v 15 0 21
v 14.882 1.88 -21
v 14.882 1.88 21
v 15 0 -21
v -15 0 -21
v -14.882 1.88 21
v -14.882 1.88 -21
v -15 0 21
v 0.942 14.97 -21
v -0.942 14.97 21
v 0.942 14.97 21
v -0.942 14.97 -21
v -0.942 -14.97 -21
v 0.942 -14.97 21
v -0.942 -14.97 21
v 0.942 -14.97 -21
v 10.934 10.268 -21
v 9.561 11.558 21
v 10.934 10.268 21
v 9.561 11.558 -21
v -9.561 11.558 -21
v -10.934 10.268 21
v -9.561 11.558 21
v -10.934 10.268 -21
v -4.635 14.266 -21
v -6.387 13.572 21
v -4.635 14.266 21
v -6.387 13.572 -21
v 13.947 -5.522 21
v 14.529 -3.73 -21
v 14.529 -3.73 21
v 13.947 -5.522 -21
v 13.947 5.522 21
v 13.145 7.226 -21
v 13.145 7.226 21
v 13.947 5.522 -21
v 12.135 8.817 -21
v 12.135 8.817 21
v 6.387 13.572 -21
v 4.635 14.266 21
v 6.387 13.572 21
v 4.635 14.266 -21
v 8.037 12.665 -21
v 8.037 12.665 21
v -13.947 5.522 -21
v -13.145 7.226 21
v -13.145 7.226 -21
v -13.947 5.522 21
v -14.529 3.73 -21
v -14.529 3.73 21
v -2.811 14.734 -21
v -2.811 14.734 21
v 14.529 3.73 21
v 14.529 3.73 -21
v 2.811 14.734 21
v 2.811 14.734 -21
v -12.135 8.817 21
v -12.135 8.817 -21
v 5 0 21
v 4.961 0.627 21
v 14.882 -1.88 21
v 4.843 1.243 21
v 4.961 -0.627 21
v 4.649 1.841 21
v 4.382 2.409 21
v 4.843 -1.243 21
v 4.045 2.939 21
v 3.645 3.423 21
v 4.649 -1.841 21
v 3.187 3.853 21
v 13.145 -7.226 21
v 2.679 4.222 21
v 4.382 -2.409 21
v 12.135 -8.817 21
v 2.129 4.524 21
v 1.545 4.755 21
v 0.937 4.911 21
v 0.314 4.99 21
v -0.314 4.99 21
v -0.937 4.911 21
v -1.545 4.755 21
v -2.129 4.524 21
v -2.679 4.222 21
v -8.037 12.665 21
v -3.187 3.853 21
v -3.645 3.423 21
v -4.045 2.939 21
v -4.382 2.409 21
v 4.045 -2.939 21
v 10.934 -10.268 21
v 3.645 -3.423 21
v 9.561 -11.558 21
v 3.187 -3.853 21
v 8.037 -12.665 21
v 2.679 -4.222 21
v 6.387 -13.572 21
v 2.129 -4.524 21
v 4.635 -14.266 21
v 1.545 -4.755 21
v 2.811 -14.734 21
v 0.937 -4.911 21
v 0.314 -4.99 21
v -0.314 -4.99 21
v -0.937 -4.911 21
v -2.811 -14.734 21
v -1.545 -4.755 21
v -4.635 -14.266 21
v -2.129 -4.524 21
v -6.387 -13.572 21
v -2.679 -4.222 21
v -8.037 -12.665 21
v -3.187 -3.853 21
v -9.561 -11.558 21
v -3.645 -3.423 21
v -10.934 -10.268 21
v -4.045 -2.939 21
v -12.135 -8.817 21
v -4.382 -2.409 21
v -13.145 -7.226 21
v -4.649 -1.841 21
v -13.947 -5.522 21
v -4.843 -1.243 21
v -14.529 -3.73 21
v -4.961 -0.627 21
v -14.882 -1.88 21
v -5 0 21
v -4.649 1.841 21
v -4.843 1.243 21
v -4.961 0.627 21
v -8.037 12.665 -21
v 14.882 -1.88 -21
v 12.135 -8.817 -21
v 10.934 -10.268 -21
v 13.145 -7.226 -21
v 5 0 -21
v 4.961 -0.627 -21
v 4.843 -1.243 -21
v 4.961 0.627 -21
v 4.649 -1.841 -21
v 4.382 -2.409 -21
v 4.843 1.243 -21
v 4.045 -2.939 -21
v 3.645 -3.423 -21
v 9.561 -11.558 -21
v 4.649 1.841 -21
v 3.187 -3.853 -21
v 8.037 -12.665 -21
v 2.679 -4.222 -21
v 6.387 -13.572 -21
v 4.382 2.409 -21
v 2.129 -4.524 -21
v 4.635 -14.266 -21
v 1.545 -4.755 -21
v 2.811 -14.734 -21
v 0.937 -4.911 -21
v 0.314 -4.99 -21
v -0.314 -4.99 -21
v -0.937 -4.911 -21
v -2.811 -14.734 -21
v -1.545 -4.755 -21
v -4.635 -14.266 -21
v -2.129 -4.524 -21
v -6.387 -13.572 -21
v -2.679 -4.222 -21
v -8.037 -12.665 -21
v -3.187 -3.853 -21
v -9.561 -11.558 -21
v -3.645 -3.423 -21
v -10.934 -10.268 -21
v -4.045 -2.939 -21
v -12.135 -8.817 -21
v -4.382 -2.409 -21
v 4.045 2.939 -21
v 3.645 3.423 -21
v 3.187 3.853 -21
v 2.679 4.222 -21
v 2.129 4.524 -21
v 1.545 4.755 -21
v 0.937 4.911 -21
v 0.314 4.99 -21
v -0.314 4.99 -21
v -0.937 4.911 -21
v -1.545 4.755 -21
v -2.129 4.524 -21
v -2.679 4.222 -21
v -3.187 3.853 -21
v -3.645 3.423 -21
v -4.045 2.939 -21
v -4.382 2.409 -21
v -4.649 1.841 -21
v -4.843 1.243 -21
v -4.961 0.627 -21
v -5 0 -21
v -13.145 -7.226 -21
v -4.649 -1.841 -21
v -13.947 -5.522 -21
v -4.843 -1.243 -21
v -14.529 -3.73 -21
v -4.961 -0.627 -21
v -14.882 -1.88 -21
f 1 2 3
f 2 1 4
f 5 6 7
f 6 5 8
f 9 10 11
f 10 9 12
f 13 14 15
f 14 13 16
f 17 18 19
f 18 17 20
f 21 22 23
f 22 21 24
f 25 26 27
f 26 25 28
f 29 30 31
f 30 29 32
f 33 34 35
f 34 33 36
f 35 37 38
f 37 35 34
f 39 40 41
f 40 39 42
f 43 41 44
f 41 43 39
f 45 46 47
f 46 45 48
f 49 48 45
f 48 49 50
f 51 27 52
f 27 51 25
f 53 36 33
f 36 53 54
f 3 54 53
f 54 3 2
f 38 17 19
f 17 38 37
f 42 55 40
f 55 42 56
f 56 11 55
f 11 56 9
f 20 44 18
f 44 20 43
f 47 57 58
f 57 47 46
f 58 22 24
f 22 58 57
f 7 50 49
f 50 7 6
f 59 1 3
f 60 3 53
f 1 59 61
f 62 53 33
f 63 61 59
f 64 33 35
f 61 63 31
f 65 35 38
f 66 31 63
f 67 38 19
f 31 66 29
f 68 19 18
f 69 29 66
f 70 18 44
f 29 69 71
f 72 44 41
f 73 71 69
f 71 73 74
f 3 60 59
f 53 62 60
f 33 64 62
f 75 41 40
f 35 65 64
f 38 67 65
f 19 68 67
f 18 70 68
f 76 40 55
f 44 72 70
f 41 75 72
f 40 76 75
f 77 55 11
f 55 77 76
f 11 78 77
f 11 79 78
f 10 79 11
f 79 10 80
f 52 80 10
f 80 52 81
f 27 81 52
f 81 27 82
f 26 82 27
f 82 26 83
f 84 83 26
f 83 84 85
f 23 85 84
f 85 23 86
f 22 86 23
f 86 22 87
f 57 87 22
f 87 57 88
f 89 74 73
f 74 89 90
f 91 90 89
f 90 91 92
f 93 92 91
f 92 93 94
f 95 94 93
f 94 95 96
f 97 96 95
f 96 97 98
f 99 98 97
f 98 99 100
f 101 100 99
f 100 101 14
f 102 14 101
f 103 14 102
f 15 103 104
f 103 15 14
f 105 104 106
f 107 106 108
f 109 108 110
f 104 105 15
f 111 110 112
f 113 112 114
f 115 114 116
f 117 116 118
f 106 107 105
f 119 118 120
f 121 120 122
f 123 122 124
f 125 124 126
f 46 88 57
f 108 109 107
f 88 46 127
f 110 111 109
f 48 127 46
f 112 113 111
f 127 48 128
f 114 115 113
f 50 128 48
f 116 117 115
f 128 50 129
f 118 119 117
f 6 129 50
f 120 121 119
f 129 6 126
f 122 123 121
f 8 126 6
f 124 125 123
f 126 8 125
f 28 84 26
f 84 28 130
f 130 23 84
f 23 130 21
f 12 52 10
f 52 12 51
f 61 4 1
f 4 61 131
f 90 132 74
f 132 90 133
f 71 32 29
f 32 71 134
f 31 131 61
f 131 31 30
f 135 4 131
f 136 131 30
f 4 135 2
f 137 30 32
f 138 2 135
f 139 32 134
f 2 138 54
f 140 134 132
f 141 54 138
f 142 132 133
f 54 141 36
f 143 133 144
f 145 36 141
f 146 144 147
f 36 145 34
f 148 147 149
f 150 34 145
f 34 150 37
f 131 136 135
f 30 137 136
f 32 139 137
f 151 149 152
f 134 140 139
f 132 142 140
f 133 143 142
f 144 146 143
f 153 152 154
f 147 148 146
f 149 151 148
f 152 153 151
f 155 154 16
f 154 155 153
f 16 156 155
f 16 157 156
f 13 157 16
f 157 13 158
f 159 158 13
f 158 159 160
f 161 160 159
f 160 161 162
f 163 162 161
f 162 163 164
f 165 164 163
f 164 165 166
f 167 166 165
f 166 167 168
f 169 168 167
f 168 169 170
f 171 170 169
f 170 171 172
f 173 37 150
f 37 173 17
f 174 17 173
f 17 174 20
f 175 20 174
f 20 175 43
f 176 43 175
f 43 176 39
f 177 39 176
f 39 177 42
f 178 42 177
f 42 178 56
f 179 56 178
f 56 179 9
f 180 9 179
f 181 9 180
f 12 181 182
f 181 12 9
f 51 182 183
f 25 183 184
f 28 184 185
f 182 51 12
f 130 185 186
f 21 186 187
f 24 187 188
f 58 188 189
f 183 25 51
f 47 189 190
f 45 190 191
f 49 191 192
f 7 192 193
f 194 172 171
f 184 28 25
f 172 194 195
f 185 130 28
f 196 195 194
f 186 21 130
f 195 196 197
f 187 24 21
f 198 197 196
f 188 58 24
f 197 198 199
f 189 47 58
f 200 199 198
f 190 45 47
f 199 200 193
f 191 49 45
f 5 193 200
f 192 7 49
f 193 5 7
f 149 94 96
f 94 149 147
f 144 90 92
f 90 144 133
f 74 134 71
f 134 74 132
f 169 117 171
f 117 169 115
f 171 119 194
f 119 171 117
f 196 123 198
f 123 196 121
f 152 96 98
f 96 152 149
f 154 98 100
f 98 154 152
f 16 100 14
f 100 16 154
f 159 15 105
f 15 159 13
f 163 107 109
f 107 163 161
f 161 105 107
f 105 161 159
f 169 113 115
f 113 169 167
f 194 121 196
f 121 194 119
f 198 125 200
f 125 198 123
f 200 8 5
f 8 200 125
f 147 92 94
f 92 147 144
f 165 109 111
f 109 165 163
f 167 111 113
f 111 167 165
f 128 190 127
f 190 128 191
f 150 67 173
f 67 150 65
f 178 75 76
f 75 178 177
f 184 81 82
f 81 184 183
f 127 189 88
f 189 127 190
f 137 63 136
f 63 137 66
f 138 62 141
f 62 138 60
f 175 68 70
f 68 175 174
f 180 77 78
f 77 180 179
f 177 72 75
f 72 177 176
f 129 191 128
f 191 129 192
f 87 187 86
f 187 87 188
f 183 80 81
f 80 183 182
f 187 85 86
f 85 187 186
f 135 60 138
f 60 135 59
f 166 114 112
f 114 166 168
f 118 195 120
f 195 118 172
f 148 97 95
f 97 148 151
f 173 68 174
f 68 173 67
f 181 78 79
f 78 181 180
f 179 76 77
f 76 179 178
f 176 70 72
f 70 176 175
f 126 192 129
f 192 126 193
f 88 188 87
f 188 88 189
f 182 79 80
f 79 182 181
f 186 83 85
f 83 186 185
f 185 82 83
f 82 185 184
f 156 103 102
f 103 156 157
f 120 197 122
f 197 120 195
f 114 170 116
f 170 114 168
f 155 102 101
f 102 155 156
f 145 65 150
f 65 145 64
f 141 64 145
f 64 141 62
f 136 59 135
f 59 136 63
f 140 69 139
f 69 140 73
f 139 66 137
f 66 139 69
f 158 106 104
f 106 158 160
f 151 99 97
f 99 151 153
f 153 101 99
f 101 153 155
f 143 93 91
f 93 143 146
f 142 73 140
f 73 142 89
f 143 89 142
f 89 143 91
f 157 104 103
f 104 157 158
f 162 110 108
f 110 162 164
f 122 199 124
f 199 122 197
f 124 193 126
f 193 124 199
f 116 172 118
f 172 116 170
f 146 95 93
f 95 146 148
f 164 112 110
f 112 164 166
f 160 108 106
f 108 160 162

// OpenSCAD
$fn = 50;


difference() {
	union() {
		translate(v = [0, 0, -21.0000000000]) {
			cylinder(h = 42, r = 15.0000000000);
		}
	}
	union() {
		translate(v = [0, 0, -100.0000000000]) {
			cylinder(h = 200, r = 5.0000000000);
		}
	}
}
